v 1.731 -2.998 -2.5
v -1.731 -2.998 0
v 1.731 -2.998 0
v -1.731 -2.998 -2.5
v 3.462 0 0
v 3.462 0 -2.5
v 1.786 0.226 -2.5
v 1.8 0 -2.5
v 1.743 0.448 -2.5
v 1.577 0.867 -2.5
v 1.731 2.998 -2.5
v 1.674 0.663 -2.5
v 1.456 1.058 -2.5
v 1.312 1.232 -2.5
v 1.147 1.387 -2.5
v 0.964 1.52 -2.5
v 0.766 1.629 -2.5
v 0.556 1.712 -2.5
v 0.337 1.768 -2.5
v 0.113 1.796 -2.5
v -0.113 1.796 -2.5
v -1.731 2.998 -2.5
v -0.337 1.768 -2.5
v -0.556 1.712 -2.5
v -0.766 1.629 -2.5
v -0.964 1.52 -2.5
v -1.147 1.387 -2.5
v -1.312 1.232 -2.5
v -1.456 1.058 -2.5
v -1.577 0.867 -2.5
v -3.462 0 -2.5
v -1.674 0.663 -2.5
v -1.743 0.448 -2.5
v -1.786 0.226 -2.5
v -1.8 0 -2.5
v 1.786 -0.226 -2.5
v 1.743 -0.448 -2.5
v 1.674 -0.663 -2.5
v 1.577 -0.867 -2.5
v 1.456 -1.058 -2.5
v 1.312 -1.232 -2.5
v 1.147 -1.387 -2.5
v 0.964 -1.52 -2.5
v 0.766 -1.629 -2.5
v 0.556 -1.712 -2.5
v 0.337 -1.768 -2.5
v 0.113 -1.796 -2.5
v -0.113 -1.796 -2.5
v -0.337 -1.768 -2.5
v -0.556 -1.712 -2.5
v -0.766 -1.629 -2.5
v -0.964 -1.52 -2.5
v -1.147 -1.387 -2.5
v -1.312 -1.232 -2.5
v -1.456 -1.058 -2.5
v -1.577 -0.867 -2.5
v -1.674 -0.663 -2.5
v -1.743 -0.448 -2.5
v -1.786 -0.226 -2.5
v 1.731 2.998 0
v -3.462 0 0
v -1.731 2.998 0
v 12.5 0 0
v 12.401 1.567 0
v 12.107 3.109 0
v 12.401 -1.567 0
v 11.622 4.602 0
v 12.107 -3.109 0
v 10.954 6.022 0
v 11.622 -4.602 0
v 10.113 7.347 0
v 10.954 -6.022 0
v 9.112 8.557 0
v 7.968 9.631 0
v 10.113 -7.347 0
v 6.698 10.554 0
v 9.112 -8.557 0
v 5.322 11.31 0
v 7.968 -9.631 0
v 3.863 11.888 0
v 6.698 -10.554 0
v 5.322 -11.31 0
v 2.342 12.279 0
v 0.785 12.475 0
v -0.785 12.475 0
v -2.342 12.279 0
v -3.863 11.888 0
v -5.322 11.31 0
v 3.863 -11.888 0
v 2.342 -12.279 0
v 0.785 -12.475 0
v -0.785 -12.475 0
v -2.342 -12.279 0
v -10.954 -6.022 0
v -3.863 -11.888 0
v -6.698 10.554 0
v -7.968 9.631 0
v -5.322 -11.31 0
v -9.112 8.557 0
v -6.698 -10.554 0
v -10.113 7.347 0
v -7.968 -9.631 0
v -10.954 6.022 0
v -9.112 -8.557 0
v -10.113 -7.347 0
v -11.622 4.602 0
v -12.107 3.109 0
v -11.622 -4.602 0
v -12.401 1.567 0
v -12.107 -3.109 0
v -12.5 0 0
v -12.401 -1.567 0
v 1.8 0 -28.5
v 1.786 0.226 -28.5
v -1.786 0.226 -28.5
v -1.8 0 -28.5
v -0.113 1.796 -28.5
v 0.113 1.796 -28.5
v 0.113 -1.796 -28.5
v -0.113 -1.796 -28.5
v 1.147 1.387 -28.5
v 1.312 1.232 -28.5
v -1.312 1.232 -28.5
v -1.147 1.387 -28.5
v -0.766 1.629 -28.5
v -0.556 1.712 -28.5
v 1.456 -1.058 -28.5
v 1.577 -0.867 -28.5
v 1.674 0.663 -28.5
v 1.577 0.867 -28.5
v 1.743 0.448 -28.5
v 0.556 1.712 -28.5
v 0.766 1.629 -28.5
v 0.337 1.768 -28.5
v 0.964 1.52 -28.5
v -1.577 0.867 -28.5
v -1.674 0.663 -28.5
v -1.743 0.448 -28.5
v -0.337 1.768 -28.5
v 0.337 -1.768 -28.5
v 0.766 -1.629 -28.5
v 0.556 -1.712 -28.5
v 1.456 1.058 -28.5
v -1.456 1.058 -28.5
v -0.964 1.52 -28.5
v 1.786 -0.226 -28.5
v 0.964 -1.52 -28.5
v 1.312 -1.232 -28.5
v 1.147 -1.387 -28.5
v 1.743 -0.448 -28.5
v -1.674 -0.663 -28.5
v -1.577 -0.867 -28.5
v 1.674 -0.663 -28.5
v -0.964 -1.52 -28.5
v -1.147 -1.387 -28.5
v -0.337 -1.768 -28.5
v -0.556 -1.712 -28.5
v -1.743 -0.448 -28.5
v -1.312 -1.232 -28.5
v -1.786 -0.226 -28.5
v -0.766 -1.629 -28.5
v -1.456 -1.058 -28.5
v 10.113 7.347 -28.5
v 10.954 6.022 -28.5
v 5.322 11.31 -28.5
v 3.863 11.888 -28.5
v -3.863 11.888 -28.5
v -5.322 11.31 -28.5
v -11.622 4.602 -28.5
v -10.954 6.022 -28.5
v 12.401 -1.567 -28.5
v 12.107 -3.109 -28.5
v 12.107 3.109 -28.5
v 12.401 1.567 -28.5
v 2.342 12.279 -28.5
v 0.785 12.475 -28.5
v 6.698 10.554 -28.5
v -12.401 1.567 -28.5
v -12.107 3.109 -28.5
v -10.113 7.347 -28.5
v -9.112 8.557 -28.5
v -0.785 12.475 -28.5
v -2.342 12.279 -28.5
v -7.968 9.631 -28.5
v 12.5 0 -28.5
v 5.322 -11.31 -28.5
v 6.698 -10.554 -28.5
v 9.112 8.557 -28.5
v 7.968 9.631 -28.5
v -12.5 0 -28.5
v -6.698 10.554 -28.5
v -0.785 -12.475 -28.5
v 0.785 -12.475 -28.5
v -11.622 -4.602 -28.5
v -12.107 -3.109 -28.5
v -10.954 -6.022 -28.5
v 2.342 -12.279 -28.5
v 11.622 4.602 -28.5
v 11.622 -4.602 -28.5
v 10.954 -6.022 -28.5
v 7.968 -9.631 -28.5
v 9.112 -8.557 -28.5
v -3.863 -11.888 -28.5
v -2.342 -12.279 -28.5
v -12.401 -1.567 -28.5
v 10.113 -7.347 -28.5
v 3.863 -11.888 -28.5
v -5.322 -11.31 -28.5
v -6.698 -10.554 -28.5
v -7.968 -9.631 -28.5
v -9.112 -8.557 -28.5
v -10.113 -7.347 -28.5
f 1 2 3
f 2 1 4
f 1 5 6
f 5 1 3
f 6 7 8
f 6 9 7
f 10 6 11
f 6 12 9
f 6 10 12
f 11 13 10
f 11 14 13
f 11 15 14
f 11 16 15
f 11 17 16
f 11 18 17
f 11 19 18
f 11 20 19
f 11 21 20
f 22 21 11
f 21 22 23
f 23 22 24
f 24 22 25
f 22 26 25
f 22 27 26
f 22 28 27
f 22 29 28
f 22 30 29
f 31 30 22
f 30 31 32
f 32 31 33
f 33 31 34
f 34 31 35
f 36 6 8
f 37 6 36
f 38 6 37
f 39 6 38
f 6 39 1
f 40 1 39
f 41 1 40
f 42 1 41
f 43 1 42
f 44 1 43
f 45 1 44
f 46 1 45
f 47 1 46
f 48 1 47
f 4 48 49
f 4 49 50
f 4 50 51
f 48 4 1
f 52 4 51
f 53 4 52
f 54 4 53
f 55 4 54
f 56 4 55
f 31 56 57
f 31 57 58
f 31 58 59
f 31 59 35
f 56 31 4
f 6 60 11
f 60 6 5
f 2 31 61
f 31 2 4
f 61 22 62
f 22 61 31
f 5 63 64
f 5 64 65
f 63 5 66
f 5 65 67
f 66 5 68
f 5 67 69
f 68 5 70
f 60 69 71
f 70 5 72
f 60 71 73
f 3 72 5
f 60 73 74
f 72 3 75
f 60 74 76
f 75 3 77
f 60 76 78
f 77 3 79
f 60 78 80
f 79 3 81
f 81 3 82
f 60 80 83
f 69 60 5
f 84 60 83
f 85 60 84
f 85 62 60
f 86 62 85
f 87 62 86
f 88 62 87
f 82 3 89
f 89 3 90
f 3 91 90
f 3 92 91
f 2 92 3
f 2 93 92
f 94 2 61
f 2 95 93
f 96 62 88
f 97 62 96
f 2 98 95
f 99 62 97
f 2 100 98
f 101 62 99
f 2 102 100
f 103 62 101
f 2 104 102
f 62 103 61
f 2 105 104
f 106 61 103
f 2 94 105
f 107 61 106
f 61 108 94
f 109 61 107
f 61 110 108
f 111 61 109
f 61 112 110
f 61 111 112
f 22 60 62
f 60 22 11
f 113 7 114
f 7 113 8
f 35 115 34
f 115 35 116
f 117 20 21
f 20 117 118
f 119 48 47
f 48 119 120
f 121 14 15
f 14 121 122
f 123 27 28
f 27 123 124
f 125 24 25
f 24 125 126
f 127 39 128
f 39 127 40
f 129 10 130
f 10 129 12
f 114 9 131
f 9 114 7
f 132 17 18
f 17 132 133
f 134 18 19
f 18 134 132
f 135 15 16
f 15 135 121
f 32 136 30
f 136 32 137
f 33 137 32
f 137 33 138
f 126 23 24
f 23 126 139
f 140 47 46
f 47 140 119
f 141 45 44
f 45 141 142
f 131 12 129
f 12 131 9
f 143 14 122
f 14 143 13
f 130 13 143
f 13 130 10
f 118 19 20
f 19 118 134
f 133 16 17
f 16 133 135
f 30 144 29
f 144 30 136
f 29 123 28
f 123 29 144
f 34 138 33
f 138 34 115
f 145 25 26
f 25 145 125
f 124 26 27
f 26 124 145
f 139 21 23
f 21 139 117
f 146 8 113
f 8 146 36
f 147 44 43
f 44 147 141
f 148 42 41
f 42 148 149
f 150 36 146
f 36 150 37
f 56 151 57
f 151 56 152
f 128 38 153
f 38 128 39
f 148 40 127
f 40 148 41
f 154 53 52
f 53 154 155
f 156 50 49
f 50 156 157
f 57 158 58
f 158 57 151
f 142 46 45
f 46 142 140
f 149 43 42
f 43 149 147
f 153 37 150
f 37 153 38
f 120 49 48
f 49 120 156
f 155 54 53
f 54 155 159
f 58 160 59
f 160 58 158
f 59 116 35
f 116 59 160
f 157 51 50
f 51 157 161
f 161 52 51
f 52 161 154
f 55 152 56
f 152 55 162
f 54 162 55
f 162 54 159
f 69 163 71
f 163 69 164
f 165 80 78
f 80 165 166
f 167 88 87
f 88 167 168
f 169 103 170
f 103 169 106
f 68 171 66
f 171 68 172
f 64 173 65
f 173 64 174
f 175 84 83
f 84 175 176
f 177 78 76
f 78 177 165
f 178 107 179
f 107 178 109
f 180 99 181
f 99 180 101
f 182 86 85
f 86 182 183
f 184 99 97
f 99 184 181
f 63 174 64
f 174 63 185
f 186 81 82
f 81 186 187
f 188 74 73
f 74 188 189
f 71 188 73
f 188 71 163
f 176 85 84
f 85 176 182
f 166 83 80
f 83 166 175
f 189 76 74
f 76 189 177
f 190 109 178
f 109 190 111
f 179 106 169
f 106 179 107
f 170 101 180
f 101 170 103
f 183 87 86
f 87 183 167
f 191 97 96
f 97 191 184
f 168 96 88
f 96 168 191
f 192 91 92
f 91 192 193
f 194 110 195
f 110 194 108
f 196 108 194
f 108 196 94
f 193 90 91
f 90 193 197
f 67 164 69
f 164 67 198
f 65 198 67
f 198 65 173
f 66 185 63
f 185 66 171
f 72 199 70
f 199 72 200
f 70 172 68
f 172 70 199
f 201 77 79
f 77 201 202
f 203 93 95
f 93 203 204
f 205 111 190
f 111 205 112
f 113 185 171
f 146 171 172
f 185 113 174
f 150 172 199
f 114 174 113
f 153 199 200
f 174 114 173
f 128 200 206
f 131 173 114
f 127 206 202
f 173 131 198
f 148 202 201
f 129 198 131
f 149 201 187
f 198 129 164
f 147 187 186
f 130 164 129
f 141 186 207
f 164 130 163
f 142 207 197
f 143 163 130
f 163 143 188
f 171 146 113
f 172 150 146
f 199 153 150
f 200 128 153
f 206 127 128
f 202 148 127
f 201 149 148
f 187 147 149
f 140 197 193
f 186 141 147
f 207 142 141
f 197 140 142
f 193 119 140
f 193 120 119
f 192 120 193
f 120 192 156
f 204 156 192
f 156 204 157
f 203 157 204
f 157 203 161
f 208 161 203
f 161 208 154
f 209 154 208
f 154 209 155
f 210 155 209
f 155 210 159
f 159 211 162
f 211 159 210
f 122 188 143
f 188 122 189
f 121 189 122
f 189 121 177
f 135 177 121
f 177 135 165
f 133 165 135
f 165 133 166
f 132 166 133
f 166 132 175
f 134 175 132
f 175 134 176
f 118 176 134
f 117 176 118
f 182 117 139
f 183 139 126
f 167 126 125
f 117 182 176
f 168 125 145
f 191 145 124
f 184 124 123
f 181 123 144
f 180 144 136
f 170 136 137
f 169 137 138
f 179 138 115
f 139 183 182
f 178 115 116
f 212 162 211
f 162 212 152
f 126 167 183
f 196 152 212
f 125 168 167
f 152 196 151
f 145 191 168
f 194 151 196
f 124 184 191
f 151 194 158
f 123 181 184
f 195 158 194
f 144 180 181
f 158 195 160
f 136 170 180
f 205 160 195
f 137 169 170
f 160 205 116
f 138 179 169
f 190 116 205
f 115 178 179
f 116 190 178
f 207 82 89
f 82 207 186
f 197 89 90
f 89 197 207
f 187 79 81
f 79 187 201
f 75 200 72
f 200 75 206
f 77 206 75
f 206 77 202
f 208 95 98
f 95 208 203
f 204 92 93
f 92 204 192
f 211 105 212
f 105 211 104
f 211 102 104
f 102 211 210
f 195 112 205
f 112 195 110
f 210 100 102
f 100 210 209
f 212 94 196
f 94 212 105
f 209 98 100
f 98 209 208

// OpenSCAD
$fn = 50;

difference() {
	union() {
		translate(v = [0, 0, -28.5]) {
			cylinder(h = 28.5, r = 12.5);
		}
	}
	union() {
		translate(v = [0, 0, 0]) {
			rotate(a = [0, 0, 0]) {
				difference() {
					union() {
						translate(v = [0, 0, -2.5]) {
							linear_extrude(height = 2.5) {
								polygon(points = [[3.4619999999999997, 0.0], [1.7310000000000003, 2.9981799479017264], [-1.7309999999999992, 2.9981799479017264], [-3.4619999999999997, 4.2397272186481365e-16], [-1.7310000000000014, -2.998179947901726], [1.7309999999999977, -2.9981799479017277]]);
							}
						}
					}
					union();
				}
			}
		}
		#translate(v = [0, 0, -100.0]) {
			cylinder(h = 200, r = 1.8);
		}
	}
}
